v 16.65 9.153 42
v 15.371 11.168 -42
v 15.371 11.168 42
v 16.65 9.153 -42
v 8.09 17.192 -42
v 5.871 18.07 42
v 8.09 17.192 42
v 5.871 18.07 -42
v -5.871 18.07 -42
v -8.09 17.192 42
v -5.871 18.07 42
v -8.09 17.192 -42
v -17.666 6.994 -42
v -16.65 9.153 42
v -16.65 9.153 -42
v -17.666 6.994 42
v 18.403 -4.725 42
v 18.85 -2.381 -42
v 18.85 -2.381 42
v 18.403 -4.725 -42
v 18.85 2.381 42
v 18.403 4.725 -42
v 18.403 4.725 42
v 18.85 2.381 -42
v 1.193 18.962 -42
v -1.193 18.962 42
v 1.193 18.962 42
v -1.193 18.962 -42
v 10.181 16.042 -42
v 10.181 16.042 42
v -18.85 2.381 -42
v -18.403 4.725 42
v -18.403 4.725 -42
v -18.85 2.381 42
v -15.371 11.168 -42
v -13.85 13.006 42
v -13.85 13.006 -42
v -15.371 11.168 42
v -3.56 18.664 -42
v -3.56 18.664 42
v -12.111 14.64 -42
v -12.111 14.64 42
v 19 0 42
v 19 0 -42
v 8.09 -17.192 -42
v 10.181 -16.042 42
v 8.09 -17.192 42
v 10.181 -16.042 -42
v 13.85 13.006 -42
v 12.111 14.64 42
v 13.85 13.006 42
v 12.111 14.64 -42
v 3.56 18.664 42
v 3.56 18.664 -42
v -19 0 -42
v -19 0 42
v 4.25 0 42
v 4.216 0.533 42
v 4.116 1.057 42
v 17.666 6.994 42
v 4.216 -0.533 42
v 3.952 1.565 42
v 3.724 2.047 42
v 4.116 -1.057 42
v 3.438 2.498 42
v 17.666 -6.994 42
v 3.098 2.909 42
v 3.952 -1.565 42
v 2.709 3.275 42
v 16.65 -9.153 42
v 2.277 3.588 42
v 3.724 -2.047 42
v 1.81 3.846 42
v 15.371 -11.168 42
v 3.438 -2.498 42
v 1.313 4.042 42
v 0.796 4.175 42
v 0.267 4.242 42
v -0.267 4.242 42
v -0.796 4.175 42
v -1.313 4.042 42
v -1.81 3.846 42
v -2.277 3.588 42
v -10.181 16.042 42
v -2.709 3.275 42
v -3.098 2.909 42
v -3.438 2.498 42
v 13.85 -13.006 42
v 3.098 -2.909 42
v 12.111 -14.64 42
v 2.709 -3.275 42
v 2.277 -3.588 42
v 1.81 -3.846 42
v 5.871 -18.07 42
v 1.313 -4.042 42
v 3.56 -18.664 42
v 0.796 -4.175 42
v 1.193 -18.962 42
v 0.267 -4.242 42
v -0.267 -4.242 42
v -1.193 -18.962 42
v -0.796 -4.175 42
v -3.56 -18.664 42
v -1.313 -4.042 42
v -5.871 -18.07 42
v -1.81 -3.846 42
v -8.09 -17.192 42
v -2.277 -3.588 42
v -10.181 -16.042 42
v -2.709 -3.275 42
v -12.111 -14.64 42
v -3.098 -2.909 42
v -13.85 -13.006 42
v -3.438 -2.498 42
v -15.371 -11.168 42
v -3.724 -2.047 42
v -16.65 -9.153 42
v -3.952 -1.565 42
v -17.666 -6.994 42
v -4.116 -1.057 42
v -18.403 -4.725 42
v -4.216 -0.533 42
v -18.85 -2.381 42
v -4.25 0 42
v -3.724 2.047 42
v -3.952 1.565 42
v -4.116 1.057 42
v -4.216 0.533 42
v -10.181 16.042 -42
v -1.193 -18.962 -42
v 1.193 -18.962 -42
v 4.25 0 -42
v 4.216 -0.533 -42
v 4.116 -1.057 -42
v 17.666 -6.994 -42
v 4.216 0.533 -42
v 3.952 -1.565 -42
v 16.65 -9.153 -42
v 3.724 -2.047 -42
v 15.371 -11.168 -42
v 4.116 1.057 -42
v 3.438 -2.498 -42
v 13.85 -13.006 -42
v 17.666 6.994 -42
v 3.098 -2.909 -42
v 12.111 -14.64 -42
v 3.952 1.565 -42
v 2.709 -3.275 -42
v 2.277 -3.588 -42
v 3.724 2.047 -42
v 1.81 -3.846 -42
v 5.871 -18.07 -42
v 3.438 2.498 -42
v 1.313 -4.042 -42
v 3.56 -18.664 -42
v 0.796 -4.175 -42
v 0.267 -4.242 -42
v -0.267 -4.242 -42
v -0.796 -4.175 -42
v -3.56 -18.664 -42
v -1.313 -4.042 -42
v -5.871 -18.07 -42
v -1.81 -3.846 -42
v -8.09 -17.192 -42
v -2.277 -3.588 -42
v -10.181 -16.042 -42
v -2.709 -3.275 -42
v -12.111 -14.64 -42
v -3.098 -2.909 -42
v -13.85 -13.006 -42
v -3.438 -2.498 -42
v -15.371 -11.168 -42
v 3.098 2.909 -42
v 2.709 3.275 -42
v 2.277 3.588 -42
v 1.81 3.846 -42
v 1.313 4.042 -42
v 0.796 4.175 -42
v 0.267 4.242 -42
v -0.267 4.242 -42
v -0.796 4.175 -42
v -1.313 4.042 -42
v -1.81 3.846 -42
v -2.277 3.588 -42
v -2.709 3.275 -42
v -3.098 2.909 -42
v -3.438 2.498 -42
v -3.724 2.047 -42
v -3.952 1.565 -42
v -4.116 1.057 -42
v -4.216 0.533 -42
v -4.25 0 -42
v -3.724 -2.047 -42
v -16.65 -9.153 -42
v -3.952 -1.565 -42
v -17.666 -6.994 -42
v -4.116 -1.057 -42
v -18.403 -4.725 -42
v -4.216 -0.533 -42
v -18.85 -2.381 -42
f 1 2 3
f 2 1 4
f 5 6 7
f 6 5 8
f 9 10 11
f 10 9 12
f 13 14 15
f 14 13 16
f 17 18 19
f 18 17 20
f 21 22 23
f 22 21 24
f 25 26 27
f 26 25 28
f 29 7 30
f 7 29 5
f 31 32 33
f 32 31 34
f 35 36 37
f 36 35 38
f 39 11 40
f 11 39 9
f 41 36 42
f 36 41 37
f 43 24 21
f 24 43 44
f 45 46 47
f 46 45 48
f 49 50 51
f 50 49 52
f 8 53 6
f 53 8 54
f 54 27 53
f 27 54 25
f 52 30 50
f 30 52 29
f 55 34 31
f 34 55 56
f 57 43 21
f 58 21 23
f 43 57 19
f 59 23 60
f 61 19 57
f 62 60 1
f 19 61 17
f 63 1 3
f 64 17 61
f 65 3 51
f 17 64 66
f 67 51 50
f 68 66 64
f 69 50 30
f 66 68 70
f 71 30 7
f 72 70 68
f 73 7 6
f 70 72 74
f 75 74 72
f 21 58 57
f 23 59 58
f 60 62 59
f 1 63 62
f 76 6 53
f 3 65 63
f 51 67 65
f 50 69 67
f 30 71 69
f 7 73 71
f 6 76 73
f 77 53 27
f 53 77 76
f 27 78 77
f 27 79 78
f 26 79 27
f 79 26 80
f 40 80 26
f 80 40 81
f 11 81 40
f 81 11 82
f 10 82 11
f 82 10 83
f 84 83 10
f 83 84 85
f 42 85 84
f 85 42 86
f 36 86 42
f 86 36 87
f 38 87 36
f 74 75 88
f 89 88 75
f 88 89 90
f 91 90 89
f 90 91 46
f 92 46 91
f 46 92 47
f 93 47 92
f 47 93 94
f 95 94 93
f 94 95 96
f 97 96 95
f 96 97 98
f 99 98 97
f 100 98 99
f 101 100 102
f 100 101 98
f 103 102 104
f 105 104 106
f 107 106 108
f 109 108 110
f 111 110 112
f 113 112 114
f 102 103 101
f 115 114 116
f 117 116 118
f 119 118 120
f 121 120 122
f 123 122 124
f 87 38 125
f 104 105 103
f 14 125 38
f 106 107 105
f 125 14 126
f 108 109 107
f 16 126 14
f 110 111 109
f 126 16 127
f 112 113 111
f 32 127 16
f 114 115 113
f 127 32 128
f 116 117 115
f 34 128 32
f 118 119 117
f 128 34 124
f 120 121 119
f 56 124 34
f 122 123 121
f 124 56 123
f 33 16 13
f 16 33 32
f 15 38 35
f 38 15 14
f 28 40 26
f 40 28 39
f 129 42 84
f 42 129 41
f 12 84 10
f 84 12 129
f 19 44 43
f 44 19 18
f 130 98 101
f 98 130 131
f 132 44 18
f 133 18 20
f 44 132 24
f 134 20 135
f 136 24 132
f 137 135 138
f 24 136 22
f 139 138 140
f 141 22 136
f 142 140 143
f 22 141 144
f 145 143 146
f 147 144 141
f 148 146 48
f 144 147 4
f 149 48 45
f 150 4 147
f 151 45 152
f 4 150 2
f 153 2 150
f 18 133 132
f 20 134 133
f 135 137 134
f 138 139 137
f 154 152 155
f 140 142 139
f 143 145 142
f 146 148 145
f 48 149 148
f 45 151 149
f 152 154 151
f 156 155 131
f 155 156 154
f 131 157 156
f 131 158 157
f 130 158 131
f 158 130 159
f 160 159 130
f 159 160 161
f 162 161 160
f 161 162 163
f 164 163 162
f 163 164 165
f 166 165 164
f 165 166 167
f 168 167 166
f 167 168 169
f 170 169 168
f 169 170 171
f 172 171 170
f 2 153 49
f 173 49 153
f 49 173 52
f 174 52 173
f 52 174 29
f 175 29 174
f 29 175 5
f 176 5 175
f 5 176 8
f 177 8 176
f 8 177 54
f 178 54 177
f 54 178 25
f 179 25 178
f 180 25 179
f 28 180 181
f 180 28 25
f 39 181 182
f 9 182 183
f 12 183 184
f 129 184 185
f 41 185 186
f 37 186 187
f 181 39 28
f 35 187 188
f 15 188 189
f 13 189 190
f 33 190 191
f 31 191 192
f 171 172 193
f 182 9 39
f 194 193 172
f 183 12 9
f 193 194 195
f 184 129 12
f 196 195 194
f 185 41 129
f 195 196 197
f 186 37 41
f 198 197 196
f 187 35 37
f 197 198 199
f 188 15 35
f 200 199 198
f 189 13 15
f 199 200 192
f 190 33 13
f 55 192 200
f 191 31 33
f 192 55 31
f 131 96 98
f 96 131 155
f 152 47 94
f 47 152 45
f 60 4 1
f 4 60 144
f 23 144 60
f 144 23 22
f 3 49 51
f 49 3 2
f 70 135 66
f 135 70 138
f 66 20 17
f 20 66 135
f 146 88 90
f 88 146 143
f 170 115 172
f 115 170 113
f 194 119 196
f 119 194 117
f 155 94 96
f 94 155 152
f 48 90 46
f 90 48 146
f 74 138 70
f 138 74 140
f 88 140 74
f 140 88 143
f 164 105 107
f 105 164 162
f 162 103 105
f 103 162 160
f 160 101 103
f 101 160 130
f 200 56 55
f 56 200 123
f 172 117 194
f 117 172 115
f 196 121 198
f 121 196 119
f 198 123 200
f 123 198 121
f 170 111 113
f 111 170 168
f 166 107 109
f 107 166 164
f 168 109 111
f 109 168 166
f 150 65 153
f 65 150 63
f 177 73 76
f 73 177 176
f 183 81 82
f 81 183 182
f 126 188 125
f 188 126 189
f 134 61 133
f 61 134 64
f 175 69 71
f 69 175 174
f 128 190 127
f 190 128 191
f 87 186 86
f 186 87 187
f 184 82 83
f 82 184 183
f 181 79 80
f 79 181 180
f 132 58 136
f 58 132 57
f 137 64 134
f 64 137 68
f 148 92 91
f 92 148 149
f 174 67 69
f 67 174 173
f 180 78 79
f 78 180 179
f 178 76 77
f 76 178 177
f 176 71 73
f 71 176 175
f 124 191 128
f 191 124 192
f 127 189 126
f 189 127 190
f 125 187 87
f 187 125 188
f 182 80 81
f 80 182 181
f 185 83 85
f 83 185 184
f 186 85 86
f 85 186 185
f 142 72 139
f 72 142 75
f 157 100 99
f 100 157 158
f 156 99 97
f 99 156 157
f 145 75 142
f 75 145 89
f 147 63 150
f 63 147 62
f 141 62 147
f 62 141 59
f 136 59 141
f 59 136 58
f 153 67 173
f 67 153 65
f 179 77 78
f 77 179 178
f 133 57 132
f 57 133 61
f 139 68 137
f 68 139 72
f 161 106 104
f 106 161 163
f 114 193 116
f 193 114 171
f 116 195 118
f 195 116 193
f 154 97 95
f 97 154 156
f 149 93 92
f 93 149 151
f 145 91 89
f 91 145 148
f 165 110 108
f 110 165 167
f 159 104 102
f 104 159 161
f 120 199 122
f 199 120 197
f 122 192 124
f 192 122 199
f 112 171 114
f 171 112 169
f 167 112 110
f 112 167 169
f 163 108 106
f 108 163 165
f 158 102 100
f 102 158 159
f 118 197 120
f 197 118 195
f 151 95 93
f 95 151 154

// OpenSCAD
$fn = 50;


difference() {
	union() {
		translate(v = [0, 0, -42.0000000000]) {
			cylinder(h = 84, r = 19.0000000000);
		}
	}
	union() {
		translate(v = [0, 0, -100.0000000000]) {
			cylinder(h = 200, r = 4.2500000000);
		}
	}
}
